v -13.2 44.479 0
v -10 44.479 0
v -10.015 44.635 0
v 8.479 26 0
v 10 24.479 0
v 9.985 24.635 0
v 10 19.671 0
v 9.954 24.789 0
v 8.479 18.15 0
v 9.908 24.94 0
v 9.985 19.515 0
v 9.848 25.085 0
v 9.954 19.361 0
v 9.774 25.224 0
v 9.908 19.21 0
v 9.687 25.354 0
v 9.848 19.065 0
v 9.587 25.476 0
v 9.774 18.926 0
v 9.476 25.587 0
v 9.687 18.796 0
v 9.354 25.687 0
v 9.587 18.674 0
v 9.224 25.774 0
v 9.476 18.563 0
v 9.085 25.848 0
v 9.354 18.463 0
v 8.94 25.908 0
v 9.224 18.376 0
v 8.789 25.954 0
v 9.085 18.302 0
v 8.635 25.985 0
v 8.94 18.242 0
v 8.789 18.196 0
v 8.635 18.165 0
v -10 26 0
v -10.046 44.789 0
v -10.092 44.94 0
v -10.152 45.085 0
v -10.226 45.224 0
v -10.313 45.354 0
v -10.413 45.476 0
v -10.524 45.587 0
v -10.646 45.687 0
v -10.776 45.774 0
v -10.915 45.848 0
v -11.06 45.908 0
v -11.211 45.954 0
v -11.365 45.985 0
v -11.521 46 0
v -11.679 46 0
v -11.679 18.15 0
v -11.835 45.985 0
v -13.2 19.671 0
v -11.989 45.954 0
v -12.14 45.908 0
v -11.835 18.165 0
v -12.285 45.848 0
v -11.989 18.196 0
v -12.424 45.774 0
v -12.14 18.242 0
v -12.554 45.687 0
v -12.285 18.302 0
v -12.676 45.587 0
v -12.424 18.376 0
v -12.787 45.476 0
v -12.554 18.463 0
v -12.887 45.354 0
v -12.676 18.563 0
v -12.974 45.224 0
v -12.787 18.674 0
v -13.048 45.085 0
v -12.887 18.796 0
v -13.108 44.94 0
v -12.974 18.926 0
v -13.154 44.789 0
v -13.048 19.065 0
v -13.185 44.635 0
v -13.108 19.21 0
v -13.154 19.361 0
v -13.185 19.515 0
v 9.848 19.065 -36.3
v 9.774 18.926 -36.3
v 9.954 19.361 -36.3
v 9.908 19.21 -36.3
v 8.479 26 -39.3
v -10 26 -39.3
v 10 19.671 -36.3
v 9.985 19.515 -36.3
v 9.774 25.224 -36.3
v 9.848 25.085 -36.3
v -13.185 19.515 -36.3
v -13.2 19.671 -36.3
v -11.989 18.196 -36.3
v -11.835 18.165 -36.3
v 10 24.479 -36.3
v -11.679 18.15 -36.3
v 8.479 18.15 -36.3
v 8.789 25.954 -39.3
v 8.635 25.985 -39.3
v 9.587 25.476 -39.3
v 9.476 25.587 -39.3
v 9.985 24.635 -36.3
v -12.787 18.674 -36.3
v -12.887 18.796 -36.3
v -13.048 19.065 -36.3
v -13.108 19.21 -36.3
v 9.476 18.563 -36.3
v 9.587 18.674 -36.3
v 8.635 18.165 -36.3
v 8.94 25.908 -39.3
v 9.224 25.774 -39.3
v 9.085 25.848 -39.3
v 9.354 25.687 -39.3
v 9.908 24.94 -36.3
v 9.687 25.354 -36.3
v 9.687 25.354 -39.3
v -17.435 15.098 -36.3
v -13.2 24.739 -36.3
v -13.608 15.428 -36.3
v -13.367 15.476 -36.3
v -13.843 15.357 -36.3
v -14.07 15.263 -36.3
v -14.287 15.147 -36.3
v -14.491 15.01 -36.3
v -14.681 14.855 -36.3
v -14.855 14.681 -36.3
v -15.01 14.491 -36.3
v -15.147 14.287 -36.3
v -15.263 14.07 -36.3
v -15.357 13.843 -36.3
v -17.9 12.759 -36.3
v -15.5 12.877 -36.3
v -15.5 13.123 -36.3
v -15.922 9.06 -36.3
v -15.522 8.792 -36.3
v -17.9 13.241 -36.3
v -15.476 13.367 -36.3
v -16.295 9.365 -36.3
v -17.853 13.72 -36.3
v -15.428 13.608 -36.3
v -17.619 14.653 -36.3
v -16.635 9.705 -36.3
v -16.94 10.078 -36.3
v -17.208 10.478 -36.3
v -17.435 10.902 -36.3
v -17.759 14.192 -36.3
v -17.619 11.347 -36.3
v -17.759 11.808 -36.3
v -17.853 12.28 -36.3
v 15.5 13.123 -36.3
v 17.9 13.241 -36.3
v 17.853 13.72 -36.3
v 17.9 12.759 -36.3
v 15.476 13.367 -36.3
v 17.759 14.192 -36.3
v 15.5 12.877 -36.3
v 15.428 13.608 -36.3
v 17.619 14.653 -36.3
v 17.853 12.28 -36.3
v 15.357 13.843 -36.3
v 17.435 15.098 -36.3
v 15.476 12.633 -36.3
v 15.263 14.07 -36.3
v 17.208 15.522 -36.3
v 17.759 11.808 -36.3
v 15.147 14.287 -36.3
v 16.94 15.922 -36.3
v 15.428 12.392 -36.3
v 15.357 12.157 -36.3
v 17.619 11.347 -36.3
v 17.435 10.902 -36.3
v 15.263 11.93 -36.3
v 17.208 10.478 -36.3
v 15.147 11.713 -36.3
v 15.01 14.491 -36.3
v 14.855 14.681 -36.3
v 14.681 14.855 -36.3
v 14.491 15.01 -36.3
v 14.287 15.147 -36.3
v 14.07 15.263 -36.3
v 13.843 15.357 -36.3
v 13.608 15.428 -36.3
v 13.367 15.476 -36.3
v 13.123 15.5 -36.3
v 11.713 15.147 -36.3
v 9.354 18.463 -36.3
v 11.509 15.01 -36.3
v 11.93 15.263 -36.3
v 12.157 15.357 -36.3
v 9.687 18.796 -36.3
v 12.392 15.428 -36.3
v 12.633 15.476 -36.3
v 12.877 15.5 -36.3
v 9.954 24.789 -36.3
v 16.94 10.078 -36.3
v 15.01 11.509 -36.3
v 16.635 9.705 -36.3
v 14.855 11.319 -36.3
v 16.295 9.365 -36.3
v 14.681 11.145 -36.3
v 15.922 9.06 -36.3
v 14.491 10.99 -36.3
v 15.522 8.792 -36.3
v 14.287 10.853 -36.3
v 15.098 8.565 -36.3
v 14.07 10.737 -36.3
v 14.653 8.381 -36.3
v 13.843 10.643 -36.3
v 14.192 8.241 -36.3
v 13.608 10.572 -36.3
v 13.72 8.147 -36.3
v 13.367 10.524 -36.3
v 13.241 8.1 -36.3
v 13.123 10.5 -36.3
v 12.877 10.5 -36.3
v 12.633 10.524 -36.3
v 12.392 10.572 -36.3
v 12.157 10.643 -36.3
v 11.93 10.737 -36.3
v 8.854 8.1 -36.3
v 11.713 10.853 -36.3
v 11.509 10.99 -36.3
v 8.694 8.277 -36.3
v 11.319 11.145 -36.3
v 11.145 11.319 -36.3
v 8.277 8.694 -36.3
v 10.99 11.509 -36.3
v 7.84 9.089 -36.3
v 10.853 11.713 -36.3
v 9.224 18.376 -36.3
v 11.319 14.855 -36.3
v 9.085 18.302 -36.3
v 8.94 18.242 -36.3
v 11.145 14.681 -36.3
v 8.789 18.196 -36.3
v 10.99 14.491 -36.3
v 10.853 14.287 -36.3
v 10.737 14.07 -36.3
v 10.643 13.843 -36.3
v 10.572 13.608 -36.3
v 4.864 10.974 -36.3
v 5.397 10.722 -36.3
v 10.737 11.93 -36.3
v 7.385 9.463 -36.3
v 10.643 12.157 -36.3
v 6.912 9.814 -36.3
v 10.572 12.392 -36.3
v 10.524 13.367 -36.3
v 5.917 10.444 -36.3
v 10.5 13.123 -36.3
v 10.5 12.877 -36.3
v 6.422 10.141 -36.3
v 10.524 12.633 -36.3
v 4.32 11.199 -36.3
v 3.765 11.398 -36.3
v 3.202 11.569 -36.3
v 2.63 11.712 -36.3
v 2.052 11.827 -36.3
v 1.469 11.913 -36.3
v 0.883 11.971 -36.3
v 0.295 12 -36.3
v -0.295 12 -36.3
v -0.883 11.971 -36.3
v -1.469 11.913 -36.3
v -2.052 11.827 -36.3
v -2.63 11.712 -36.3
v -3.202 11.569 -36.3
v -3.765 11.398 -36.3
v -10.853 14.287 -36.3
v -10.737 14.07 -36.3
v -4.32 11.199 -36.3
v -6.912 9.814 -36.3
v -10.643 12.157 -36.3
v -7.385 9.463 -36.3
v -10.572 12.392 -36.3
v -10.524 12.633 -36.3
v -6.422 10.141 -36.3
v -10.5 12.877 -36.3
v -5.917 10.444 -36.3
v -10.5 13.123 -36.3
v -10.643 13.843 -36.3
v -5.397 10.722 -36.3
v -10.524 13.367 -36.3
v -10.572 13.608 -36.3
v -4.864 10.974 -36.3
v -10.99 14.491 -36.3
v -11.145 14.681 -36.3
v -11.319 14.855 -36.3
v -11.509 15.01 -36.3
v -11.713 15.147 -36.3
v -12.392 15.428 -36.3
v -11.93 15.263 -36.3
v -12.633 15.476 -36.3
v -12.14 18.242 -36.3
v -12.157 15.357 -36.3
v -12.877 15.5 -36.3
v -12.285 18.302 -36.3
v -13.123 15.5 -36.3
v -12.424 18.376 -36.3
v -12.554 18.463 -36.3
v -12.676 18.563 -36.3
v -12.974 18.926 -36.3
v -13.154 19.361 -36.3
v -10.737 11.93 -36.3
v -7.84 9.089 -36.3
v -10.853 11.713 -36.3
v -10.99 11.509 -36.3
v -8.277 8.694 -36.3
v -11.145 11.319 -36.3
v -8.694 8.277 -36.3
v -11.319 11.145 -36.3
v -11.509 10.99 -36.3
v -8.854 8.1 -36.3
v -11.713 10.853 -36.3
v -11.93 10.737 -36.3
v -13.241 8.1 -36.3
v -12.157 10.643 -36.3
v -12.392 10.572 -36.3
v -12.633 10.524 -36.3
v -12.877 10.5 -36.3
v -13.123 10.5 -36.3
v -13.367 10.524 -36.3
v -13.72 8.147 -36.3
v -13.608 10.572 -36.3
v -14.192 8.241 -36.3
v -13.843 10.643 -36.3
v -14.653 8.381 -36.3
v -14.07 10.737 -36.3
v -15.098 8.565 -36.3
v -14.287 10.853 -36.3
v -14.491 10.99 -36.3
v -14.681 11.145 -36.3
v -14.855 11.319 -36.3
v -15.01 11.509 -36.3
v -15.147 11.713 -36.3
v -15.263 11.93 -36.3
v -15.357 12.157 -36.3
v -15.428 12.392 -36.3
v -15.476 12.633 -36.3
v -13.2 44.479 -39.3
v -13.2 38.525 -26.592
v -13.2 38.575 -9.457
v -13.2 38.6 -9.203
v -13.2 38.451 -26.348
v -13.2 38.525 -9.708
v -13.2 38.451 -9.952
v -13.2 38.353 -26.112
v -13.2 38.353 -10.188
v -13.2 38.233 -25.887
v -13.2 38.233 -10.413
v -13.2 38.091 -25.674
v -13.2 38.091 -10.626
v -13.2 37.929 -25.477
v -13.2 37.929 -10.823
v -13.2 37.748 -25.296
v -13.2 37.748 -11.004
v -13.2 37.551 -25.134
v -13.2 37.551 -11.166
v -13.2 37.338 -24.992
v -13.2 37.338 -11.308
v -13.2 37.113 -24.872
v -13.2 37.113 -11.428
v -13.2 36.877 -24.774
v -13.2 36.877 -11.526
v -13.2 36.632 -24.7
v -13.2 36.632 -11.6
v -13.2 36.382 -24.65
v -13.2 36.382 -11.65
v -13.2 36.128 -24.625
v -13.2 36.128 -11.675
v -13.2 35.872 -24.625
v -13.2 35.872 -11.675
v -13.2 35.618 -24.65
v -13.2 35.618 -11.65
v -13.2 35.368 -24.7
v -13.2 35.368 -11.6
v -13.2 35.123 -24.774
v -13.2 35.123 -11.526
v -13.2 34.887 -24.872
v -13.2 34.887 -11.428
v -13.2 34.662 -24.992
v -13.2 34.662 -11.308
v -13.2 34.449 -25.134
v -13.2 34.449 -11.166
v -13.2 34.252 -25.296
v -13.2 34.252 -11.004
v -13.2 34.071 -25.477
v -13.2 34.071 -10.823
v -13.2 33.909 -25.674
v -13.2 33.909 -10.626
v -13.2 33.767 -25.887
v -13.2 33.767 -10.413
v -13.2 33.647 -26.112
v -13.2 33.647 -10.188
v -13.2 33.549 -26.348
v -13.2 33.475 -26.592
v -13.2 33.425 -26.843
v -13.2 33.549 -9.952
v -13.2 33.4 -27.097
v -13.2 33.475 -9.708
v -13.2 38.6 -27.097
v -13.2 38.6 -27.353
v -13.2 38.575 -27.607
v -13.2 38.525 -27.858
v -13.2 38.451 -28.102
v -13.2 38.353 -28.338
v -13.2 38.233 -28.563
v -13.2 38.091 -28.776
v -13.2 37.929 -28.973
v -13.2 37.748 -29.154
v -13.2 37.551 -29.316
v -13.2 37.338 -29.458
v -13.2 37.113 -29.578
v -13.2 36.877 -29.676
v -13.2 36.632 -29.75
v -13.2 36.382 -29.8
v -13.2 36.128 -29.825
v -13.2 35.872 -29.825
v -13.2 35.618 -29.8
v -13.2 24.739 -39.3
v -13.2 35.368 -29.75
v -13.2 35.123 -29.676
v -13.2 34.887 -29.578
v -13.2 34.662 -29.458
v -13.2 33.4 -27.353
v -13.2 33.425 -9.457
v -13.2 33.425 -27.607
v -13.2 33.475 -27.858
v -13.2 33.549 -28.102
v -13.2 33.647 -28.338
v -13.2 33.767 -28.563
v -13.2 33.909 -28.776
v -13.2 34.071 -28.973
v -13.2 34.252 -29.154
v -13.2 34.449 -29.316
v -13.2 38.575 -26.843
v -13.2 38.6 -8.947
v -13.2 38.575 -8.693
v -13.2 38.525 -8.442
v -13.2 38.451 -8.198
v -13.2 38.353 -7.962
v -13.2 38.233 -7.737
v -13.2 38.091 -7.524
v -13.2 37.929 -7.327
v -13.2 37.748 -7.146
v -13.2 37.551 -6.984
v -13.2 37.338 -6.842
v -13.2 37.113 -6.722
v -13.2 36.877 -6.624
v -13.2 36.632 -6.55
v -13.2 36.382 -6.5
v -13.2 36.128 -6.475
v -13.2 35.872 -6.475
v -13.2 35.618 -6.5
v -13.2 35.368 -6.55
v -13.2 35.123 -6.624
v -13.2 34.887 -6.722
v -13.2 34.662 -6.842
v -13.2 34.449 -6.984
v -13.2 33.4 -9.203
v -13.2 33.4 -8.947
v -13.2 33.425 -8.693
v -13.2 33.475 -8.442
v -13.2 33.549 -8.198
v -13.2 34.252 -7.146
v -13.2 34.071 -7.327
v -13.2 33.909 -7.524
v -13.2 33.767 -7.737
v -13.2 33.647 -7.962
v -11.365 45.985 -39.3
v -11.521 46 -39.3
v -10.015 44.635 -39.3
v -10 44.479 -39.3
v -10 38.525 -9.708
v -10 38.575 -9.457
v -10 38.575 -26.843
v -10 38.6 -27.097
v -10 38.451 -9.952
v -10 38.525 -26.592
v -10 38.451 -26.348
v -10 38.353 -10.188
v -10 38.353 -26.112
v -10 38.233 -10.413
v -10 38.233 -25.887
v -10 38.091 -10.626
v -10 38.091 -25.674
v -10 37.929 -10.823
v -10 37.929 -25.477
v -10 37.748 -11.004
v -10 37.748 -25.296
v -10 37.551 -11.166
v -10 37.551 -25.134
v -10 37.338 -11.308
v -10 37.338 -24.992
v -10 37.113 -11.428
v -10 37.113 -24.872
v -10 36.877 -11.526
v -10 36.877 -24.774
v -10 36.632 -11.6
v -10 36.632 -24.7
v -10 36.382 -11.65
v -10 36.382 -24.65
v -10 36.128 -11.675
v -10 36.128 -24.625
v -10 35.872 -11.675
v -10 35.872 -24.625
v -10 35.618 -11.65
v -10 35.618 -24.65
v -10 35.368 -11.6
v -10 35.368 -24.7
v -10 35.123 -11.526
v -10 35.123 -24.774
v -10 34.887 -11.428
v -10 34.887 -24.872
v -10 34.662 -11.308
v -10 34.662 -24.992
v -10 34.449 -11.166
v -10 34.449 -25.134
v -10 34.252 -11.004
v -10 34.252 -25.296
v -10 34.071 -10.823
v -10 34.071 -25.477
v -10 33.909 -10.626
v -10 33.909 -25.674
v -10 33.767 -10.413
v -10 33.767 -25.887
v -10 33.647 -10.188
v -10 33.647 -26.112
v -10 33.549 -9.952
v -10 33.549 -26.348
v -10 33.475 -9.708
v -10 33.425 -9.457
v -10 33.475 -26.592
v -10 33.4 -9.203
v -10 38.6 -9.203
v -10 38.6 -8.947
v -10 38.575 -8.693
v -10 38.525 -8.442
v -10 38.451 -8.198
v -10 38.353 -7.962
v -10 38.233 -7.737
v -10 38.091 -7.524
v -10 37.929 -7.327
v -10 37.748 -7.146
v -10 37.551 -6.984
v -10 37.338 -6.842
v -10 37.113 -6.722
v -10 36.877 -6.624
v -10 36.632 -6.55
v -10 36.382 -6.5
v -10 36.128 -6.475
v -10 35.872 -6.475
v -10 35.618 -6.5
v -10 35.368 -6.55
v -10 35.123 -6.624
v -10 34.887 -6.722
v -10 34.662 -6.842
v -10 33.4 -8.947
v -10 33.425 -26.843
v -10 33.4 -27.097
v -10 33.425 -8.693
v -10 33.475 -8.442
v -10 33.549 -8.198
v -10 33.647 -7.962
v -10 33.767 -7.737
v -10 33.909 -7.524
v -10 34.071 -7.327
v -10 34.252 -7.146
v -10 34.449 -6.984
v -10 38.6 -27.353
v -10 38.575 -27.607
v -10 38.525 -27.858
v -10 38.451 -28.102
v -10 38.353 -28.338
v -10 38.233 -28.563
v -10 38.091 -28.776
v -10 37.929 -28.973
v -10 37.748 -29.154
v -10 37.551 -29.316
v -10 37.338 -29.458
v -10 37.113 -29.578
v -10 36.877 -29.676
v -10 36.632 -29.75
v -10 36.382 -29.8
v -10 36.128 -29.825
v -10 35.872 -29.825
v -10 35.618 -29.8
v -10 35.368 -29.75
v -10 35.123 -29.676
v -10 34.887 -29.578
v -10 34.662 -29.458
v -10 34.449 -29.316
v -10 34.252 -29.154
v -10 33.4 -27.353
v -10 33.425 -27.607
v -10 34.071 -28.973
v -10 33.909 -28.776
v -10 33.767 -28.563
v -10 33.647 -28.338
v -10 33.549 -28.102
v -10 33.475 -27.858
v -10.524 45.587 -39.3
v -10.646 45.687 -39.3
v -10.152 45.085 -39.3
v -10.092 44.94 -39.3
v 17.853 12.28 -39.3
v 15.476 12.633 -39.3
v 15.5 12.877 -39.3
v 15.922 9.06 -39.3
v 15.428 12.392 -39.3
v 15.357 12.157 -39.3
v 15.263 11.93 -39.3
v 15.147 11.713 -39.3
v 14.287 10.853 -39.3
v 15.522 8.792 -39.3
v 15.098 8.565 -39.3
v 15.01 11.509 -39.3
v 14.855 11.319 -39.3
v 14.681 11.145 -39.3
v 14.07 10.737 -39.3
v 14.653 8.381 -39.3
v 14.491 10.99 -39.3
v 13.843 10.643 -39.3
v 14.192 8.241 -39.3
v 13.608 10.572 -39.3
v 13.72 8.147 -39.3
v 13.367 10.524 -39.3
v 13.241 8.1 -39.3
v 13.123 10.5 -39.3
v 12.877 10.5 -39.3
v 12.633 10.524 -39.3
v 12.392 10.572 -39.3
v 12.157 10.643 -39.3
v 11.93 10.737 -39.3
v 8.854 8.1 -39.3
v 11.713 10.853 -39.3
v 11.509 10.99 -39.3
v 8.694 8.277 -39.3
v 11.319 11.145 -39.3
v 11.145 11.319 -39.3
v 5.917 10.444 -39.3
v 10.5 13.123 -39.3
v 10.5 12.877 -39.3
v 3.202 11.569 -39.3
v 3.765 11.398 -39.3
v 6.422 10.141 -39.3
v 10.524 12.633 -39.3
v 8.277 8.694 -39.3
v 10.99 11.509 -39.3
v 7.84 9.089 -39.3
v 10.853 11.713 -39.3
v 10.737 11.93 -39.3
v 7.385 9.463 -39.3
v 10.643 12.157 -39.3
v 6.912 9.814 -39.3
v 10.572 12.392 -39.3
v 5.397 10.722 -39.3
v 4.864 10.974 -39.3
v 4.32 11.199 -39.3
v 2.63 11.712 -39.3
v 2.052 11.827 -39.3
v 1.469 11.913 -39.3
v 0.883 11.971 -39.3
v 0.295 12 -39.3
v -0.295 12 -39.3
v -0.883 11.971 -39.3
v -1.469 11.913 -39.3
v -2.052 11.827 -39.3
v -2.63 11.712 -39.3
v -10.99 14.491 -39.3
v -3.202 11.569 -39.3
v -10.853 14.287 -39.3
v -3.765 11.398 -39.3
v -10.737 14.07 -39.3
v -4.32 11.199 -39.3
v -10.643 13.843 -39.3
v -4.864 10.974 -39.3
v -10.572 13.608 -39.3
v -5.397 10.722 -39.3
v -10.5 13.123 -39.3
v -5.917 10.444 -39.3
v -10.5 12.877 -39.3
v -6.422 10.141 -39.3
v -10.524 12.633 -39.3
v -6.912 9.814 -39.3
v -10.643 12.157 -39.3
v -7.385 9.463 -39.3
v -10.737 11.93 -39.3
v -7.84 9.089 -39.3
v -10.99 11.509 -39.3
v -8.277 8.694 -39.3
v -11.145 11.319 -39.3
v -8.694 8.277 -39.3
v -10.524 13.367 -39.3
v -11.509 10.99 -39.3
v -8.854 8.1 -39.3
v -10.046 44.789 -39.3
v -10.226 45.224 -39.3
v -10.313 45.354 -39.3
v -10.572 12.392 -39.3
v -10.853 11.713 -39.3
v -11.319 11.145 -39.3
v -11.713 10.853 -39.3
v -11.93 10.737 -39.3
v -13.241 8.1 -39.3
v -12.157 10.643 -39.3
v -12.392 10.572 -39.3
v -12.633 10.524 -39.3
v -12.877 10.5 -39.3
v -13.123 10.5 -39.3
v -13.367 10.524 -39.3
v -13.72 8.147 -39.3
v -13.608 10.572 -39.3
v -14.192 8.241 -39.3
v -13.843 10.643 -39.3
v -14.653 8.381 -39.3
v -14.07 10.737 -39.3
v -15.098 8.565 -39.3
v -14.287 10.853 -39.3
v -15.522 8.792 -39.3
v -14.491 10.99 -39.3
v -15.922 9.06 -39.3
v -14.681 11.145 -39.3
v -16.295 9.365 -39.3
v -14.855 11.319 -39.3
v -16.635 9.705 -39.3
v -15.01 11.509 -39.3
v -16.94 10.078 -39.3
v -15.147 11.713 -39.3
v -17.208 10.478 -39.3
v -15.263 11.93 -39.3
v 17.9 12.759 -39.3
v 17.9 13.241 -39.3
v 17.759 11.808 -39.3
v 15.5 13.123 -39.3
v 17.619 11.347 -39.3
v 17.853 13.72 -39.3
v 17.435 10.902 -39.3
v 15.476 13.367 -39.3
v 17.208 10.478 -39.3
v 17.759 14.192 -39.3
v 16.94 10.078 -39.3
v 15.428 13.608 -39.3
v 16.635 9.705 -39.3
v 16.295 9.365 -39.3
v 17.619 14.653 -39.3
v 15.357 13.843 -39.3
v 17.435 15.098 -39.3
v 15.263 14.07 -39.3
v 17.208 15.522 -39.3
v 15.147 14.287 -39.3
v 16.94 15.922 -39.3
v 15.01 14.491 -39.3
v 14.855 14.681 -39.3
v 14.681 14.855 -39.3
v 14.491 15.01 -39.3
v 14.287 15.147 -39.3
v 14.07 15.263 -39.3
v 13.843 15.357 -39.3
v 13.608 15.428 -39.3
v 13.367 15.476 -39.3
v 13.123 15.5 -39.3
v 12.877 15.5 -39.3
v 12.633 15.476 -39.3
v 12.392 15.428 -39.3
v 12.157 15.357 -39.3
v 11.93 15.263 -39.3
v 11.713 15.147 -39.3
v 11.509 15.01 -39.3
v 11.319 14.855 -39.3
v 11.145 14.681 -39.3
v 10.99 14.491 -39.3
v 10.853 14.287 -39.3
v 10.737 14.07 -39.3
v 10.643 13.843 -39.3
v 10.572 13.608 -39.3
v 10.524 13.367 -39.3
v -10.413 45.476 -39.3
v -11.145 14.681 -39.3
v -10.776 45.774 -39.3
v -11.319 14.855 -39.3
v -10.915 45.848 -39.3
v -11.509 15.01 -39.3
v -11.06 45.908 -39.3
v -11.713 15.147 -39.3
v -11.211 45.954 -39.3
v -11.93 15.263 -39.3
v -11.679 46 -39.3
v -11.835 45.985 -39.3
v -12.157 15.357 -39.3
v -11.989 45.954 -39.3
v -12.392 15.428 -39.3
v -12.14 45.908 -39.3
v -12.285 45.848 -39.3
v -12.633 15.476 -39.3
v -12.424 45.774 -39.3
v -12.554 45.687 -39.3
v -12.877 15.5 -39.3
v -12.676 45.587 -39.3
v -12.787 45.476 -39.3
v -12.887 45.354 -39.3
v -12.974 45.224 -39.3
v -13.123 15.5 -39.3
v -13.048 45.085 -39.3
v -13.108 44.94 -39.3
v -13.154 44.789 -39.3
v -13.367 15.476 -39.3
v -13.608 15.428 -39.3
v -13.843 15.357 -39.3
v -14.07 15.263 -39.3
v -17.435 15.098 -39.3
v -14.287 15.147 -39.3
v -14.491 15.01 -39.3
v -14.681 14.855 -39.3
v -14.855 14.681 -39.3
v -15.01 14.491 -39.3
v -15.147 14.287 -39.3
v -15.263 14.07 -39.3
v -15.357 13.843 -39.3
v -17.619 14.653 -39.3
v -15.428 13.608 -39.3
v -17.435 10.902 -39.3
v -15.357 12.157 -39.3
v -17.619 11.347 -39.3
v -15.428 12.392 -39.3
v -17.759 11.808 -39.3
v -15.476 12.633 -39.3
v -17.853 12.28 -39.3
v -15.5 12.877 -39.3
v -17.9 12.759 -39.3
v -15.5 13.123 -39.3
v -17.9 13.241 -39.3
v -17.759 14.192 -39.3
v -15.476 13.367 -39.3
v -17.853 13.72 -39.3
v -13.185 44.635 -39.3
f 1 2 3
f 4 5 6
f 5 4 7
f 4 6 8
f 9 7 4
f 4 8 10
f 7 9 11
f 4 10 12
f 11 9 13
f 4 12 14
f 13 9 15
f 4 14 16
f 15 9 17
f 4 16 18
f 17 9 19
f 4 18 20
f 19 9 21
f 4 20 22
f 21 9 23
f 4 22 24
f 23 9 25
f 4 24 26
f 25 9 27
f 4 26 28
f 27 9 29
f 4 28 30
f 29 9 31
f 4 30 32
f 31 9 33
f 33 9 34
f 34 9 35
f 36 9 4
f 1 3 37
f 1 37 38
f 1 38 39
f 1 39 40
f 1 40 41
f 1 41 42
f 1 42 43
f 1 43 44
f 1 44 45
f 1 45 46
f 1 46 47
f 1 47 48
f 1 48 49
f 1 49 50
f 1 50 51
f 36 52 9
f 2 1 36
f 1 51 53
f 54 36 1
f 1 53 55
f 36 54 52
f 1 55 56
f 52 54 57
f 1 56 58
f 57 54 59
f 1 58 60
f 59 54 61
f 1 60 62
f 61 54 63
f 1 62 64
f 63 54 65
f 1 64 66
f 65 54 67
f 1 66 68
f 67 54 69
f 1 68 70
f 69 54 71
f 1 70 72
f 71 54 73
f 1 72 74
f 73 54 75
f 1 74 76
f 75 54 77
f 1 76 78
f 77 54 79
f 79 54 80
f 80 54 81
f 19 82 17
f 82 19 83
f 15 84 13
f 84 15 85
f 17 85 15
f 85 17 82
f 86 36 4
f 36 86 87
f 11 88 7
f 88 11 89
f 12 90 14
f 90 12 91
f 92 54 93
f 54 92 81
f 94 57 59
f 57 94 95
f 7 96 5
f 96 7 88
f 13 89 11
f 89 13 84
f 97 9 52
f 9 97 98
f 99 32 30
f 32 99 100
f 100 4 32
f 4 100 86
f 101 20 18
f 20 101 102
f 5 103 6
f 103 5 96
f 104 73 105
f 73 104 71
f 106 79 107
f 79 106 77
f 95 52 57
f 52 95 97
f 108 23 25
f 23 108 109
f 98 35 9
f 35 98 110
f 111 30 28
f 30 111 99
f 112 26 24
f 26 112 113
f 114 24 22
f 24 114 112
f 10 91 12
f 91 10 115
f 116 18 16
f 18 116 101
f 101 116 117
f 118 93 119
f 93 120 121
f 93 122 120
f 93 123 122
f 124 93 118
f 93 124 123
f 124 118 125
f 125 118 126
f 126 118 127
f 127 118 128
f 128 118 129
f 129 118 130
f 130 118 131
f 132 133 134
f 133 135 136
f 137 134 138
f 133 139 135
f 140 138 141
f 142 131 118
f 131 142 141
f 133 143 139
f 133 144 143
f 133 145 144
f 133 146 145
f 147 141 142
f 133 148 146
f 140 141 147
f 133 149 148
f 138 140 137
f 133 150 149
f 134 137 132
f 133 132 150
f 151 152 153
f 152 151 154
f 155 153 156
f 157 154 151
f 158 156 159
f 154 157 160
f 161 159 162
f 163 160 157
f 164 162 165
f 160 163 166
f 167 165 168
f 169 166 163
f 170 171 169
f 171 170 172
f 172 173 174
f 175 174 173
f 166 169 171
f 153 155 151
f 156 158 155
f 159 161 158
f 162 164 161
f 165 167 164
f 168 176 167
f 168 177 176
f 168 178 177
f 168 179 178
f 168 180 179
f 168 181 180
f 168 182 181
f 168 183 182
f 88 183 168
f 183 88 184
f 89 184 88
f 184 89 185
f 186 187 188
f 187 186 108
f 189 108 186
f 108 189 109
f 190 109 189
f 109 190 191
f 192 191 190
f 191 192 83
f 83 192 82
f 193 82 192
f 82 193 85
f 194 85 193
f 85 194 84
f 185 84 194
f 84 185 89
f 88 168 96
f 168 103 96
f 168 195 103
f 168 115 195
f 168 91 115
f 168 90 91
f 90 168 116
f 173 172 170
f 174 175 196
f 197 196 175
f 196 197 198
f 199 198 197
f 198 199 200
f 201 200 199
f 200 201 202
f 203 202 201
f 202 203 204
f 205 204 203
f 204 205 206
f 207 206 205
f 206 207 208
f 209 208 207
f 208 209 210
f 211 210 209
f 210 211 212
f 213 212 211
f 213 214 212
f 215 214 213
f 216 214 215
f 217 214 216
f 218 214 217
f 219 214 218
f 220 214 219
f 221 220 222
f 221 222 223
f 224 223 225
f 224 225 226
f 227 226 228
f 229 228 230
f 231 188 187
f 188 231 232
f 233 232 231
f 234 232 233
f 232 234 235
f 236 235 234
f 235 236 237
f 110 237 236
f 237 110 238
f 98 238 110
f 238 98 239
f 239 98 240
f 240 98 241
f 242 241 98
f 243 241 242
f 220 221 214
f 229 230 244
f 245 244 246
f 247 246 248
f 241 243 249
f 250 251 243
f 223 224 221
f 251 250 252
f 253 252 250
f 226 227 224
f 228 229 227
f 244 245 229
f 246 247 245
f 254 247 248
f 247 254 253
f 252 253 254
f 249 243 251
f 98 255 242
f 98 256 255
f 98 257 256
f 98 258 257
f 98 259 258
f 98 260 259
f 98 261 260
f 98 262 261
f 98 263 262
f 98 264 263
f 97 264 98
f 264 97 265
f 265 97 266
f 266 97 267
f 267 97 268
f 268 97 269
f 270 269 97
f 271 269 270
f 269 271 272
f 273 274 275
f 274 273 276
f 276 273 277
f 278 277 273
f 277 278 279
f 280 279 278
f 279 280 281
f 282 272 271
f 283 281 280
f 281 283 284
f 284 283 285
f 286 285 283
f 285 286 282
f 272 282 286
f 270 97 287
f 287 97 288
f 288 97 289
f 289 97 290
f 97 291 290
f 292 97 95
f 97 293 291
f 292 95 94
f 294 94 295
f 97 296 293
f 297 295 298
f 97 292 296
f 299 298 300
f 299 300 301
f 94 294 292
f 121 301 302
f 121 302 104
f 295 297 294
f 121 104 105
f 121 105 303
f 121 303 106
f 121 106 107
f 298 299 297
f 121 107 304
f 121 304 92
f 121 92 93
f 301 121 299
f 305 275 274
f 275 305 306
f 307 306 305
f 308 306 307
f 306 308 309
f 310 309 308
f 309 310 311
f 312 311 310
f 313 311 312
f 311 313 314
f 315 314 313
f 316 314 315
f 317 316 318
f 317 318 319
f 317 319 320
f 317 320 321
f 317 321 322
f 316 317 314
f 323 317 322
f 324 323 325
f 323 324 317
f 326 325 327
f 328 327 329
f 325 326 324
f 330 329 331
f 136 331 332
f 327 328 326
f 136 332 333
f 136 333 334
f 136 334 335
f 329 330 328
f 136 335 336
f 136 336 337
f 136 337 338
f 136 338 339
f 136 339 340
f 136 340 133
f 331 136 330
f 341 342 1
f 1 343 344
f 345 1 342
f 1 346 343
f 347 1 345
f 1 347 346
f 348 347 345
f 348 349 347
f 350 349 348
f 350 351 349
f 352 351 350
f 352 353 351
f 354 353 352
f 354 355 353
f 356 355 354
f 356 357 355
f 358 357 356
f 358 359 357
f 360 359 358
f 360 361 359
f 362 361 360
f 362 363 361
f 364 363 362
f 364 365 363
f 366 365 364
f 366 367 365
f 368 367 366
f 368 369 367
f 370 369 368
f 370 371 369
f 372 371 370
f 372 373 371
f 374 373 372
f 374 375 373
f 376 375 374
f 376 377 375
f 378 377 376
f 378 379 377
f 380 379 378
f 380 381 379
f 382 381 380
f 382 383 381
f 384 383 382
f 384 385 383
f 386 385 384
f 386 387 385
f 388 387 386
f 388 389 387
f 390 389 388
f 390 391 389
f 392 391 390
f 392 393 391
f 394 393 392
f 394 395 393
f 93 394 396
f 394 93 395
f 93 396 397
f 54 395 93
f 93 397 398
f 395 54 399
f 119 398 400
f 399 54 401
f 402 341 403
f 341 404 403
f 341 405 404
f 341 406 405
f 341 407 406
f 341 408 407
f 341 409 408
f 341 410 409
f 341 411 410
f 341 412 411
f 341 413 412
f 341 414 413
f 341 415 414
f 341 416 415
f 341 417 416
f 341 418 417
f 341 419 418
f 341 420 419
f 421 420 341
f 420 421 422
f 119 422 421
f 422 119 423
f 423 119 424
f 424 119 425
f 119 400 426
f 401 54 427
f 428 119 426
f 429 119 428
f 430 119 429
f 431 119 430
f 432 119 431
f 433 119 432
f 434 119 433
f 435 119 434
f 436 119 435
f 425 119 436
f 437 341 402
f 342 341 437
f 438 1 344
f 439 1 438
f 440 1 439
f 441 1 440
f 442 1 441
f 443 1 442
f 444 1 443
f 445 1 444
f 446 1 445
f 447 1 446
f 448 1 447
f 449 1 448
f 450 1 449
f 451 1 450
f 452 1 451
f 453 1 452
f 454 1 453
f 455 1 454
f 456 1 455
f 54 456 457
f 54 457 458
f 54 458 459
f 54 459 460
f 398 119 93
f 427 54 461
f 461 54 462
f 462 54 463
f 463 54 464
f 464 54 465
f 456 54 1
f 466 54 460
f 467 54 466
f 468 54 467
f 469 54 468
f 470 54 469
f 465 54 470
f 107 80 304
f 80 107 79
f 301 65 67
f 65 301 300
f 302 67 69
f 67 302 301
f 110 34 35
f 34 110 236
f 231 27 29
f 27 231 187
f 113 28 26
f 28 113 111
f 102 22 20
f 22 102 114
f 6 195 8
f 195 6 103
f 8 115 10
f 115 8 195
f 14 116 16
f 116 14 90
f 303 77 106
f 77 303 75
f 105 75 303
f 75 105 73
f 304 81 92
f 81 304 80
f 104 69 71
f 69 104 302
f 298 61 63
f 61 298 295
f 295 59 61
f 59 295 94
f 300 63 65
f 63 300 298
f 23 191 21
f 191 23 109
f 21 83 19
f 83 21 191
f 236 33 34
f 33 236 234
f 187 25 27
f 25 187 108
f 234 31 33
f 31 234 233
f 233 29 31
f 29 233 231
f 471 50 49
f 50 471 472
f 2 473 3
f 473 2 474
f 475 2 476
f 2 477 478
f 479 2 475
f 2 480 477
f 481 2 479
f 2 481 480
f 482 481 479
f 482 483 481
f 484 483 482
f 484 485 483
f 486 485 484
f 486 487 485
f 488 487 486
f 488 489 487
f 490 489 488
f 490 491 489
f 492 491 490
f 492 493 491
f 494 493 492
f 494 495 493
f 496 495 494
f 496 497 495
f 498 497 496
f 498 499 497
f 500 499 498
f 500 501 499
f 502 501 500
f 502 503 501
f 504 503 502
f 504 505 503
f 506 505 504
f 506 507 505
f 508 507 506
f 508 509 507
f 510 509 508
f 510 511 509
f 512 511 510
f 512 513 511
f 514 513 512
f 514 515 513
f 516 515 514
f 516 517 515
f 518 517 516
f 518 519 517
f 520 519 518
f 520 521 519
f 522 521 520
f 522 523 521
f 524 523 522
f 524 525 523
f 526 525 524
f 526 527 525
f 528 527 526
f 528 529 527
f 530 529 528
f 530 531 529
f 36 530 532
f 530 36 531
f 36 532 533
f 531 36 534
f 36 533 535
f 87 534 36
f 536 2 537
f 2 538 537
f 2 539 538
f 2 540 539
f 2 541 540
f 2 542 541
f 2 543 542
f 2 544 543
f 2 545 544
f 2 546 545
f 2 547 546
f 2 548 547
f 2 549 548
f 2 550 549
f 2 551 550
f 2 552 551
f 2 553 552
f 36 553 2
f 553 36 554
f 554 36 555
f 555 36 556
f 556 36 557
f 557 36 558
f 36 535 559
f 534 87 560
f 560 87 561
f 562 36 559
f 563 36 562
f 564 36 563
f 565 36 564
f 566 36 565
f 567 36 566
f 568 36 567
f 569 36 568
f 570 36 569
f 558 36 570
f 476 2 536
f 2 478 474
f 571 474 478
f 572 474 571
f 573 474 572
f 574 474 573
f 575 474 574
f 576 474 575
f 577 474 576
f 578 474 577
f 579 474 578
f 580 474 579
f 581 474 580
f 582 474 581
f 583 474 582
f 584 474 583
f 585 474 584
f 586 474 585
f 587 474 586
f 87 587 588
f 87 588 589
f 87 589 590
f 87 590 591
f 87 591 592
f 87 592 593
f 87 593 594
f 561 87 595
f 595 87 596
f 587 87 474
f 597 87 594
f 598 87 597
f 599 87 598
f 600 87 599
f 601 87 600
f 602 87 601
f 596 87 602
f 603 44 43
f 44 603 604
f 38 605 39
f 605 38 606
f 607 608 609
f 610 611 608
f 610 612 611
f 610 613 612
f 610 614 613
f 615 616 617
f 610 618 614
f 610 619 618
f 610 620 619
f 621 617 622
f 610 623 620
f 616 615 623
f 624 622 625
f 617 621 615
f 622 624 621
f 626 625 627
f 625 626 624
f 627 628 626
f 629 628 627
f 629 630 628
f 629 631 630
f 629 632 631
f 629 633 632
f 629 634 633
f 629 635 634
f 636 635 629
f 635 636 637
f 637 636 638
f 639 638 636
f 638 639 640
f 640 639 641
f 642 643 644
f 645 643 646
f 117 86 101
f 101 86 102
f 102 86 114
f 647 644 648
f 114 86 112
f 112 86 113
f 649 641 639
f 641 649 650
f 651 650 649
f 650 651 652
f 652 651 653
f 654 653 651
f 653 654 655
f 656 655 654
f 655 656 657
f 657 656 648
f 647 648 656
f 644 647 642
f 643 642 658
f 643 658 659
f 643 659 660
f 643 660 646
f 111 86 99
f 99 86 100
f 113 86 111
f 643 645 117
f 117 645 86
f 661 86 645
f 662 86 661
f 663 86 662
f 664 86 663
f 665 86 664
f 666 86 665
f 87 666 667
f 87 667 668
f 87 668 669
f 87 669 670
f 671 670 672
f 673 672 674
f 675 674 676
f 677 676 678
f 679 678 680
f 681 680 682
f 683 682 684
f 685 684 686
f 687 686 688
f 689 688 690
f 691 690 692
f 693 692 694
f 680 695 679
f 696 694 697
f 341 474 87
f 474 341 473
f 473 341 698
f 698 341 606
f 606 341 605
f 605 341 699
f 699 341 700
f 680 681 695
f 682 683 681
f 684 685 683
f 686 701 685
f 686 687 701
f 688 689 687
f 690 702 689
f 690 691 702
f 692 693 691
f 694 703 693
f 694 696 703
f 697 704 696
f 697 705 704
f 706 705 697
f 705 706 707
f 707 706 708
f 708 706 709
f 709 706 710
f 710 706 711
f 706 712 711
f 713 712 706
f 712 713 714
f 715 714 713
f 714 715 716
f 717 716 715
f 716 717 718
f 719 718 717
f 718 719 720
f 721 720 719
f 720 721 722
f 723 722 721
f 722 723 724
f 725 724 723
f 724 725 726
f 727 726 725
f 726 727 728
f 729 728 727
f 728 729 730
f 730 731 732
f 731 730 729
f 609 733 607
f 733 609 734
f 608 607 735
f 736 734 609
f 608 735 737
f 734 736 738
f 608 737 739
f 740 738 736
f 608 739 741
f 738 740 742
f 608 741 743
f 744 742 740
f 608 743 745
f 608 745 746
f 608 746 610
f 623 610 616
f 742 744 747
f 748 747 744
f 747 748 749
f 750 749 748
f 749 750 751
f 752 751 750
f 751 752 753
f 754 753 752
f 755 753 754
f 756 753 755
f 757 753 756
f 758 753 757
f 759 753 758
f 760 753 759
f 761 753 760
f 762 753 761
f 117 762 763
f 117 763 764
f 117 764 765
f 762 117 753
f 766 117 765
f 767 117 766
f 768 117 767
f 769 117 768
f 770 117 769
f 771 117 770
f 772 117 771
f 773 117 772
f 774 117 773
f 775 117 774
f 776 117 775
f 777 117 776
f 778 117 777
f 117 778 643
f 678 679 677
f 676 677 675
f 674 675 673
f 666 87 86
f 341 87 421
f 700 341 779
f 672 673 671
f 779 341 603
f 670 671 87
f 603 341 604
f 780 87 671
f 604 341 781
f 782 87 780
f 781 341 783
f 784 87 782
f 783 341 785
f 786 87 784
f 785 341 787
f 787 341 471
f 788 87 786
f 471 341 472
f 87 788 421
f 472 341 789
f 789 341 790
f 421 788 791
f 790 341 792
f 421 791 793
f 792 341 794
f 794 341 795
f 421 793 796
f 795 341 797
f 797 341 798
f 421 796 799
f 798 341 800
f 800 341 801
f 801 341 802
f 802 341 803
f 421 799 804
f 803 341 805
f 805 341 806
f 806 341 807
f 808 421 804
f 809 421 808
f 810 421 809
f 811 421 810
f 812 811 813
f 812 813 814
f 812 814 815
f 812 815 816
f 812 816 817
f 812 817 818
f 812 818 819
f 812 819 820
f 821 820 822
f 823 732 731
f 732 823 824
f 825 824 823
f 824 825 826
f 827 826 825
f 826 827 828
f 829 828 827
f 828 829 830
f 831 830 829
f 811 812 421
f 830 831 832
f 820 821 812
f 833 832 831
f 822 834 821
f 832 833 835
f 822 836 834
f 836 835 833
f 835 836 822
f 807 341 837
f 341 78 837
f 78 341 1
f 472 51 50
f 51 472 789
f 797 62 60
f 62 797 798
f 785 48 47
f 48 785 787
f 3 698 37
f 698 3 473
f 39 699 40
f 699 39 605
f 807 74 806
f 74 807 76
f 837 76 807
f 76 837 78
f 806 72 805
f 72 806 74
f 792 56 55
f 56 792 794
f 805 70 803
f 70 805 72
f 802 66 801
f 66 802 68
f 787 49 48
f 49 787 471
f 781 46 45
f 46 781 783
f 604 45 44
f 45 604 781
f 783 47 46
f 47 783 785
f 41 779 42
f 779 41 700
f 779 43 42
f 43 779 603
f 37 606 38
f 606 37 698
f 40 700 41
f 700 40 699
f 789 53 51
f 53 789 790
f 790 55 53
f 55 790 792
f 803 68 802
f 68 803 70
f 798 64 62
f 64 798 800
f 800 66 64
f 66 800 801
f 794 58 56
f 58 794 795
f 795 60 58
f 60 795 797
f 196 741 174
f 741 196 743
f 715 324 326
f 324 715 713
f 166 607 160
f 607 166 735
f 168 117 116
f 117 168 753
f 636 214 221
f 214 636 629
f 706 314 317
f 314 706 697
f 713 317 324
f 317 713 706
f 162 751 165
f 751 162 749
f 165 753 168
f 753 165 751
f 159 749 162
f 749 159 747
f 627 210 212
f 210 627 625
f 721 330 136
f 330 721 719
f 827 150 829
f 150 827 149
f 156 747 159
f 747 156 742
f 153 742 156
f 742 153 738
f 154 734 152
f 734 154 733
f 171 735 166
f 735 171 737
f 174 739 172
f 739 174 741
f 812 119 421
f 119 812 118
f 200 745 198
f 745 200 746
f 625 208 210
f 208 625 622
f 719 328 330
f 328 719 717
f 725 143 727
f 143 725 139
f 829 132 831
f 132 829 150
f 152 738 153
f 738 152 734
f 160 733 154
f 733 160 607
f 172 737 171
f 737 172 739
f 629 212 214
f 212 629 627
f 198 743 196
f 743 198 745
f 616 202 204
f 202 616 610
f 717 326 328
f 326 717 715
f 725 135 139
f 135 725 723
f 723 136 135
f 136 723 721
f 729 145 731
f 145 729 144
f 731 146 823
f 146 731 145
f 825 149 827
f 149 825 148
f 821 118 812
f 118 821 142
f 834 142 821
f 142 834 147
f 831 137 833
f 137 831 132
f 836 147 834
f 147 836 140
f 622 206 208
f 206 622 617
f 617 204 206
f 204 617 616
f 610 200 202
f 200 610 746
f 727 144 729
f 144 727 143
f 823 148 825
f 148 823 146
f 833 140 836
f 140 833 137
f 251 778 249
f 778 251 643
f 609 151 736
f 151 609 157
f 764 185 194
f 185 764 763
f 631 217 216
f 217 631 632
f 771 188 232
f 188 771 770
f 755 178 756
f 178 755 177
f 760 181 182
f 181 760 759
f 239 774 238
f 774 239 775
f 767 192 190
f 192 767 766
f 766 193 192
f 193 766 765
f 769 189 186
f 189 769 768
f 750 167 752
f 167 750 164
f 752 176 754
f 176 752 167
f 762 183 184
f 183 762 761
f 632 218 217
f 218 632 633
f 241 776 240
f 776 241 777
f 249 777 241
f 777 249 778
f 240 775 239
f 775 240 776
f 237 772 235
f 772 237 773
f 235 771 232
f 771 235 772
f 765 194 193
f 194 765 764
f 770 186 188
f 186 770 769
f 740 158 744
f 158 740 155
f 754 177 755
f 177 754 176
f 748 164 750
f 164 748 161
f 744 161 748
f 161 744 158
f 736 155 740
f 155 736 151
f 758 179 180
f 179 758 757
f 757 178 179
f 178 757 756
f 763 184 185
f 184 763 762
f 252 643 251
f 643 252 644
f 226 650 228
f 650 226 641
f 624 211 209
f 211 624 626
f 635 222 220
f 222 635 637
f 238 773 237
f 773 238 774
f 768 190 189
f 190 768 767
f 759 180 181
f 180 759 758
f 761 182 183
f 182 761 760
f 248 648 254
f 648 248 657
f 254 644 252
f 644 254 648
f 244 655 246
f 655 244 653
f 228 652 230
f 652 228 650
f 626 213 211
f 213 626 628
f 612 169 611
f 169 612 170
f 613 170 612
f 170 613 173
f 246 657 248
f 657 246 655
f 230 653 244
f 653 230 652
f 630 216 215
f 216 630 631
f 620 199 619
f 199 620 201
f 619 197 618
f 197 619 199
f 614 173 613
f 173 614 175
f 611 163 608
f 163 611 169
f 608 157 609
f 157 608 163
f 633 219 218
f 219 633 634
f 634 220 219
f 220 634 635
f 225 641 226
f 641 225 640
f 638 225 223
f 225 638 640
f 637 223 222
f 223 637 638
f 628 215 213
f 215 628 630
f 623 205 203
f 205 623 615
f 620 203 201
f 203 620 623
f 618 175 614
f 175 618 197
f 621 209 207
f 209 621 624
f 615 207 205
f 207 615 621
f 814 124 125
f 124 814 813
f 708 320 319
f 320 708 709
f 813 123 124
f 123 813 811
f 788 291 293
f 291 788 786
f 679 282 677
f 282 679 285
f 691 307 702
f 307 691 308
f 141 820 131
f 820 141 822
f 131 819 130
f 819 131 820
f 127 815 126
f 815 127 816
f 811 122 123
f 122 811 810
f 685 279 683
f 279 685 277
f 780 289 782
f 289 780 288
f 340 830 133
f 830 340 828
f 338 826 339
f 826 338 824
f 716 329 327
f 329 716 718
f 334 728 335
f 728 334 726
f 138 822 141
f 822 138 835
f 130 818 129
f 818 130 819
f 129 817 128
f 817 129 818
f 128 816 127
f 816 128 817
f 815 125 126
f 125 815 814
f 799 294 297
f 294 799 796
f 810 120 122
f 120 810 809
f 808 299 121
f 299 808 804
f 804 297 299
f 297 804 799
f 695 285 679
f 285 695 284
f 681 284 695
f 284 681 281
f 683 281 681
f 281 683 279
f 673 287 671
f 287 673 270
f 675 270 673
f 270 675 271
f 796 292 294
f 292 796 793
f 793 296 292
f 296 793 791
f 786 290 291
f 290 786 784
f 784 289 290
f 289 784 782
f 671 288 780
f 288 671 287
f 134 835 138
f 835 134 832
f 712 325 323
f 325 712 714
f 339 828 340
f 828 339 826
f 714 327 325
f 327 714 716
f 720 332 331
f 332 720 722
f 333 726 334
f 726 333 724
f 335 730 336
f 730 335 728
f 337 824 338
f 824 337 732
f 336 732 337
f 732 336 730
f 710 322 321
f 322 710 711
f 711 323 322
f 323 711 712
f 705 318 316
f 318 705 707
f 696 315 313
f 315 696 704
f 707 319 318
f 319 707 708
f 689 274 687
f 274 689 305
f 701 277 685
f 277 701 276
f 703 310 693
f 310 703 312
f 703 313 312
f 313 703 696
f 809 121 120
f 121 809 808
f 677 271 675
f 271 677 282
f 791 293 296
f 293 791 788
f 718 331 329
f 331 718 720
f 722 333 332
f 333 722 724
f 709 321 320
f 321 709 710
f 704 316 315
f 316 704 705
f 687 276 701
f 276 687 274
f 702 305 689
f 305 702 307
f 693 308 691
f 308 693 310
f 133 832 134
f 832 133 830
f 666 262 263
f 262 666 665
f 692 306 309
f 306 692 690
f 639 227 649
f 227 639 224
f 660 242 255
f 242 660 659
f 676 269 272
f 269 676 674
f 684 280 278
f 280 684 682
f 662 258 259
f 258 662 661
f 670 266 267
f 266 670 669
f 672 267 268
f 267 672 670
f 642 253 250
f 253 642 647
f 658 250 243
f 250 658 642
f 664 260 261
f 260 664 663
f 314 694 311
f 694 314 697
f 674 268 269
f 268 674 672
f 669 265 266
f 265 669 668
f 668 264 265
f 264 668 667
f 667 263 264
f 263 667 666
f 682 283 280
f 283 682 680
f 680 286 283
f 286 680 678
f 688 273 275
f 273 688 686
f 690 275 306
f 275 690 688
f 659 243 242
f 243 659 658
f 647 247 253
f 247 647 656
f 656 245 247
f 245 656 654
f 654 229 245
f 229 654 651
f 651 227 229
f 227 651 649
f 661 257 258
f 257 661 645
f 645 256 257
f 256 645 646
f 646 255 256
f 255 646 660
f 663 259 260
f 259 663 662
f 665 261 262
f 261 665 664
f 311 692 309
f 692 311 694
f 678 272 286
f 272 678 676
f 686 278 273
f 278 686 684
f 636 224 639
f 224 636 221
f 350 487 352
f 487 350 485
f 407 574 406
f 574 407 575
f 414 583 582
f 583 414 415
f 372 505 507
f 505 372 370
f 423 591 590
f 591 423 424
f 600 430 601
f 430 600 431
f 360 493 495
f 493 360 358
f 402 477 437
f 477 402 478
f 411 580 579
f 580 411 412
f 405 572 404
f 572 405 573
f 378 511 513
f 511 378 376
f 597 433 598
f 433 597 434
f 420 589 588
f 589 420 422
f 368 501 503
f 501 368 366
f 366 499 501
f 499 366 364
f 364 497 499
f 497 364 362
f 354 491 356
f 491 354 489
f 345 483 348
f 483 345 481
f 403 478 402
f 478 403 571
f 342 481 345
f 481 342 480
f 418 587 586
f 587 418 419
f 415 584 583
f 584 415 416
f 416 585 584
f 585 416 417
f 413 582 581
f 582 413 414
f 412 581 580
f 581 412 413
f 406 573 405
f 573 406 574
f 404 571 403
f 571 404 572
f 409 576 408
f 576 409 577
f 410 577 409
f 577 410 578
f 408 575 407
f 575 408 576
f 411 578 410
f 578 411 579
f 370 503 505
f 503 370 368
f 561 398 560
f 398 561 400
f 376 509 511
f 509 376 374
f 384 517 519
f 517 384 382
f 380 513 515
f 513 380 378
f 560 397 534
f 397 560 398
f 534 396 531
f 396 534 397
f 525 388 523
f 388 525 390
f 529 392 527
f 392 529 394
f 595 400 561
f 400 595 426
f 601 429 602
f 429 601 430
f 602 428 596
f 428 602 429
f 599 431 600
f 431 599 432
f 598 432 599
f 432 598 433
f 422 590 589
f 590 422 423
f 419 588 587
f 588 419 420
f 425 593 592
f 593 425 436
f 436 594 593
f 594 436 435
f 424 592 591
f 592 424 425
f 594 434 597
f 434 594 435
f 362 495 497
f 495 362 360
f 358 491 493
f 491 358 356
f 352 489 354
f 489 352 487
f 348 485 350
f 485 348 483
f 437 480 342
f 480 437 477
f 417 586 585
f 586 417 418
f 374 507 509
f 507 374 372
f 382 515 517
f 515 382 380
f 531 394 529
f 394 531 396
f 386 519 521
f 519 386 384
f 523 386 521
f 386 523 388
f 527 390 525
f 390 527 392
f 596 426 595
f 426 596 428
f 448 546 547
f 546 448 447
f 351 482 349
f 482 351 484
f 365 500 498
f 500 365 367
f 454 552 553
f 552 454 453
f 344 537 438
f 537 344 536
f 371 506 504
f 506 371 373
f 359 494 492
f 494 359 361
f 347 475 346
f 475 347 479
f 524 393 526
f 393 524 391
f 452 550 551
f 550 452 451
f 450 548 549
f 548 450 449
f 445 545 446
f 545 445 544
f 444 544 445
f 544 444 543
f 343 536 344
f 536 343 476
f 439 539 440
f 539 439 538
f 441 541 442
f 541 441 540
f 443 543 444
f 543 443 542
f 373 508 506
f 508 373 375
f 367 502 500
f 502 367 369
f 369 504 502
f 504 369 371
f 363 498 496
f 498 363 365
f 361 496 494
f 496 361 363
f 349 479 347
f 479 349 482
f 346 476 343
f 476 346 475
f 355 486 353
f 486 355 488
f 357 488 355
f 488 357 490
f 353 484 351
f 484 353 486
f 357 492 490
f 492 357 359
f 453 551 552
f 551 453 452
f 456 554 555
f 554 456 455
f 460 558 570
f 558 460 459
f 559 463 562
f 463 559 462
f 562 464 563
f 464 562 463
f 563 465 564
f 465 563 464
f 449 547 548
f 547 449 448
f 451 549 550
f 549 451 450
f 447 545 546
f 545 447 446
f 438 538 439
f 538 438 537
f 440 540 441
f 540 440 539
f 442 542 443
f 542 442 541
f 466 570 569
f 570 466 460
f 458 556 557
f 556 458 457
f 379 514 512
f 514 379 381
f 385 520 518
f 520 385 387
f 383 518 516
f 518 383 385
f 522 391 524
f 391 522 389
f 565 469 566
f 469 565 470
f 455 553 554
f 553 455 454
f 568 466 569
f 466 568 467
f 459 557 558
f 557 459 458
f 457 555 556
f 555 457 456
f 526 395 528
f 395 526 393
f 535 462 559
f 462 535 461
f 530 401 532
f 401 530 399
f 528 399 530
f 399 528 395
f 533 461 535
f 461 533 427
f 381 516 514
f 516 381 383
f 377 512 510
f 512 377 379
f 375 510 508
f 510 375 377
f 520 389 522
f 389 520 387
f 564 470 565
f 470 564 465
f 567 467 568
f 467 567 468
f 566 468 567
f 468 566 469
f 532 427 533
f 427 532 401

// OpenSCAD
// file: ../lib/util.scad
resolution = 64;

pi = 3.141592;

left = -1;
right = 1;
top = 1;
bottom = -1;
rear = 1;
front = -1;

function accurate_diam(diam,sides) = 1 / cos(180/sides) / 2 * diam;

module hole(diam,len,sides=8) {
  rotate([0,0,180/sides]) {
    cylinder(r=accurate_diam(diam,sides),h=len,center=true,$fn=sides);
  }
}

module accurate_circle(diam,sides=8) {
  rotate([0,0,180/sides]) {
    circle(r=accurate_diam(diam,sides),$fn=sides);
  }
}

module debug_axes() {
  color("red") translate([50,0,0]) cube([100,.2,.2],center=true);
  color("green") translate([0,50,0]) cube([.2,100,.2],center=true);
  color("blue") translate([0,0,50]) cube([.2,.2,100],center=true);
}

module ring(id,thickness,height,fn=16) {
  od = id + thickness;
  linear_extrude(height=height,center=true) {
    difference() {
      accurate_circle(od,fn);
      accurate_circle(id,fn);
    }
  }
}

module rounded_square(width,depth,diam,fn=resolution) {
  pos_x = width/2-diam/2;
  pos_y = depth/2-diam/2;

  hull() {
    for(x=[left,right]) {
      for(y=[front,rear]) {
        translate([x*pos_x,y*pos_y,0]) {
          accurate_circle(diam,fn);
        }
      }
    }
  }
}

module rounded_cube(width,depth,height,diam,fn=resolution) {
  linear_extrude(height=height,center=true,convexity=3) {
    rounded_square(width,depth,diam,fn);
  }
}

module round_corner_filler(diam,length) {
  linear_extrude(height=length,center=true,convexity=3) {
    round_corner_filler_profile(diam);
  }
}

module round_corner_filler_profile(diam,res=resolution) {
  difference() {
    translate([diam/4,diam/4,0]) {
      square([diam/2,diam/2],center=true);
    }
    translate([diam/2,diam/2,0]) {
      accurate_circle(diam,res);
    }
  }
}

module space_along_length(length,min_hole_spacing=4*inch,from_end=1*inch) {
  avail_length = length - (from_end*2);
  num_spaces   = floor(avail_length / min_hole_spacing);
  extra_space  = (avail_length - (num_spaces*min_hole_spacing)) / num_spaces;
  spacing      = min_hole_spacing + extra_space;

  // echo(length, num_spaces, spacing);

  translate([0,-length/2+from_end,0]) {
    for(y=[0:num_spaces]) {
      translate([0,y*spacing,0]) {
        children();
      }
    }
  }
}

module letter_spike(thin_width,thick_width,thickness) {
  hull() {
    cylinder(r=thin_width,h=thickness*2,center=true,$fn=16);
    cylinder(r=thick_width,h=0.01,center=true,$fn=16);
  }
}

module letter_L(width=10,height=20,thickness=0.5,thick_width=2,thin_width=0.3) {
  lines = [
    [
      [-width/2,height/2,0],
      [-width/2,-height/2,0],
    ],
    [
      [-width/2,-height/2,0],
      [width/2,-height/2,0],
    ],
  ];

  for(pair=lines) {
    hull() {
      for(vect=pair) {
        translate(vect) {
          letter_spike(thin_width,thick_width,thickness);
        }
      }
    }
  }
}

module letter_R(width=10,height=20,thickness=0.5,thick_width=2,thin_width=0.3) {
  lines = [
    [
      [-width/2,height/2,0],
      [-width/2,-height/2,0],
    ],
    [
      [-width/2,height/2,0],
      [width/2,height/3,0],
    ],
    [
      [width/2,height/3,0],
      [-width/4,0,0],
    ],
    [
      [-width/2,0,0],
      [-width/4,0,0],
    ],
    [
      [-width/4,0,0],
      [width/2,-height/2,0],
    ],
  ];

  for(pair=lines) {
    hull() {
      for(vect=pair) {
        translate(vect) {
          letter_spike(thin_width,thick_width,thickness);
        }
      }
    }
  }
}

module zip_tie_cavity(inner_diam_input,zip_tie_thickness,zip_tie_width,fn=resolution) {
  inner_diam = inner_diam_input -0.05;
  overall_width = inner_diam+zip_tie_thickness*2;

  module profile() {
    for(x=[left,right]) {
      translate([x*(inner_diam/2+zip_tie_thickness/2),overall_width,0]) {
        square([zip_tie_thickness,overall_width*2],center=true);
      }
    }

    intersection() {
      translate([0,-overall_width,0]) {
        square([overall_width*2,overall_width*2],center=true);
      }
      difference() {
        accurate_circle(inner_diam+zip_tie_thickness*2,fn);
        accurate_circle(inner_diam,fn);
      }
    }
  }

  linear_extrude(height=zip_tie_width,convexity=3,center=true) {
    profile();
  }
}

module printed_extrusion_carriage_profile(body_width,body_height) {
  spring_thickness = extrude_width*4;
  spring_gap_width = 1;
  preload = -0.2; // negative makes more slack both for print and UHMWPE tape
  wall_thickness = extrude_width*4;

  cavity_width = body_width - wall_thickness*4;
  cavity_height = body_height - wall_thickness*4;

  module spring_profile() {
    contact_width = 8;

    translate([0,-preload+spring_thickness/2]) {
      translate([left*(y_rail_extrusion_width/2-contact_width/2),0,0]) {
        rounded_square(contact_width,spring_thickness,spring_thickness);
      }
      hull() {
        translate([left*(y_rail_extrusion_width/2-contact_width+spring_thickness/2),0,0]) {
          accurate_circle(spring_thickness,resolution);
        }
        translate([right*(y_rail_extrusion_width/2-spring_thickness),spring_gap_width/2,0]) {
          accurate_circle(spring_thickness,resolution);
        }
      }
      translate([right*(y_rail_extrusion_width/2-spring_thickness),2-spring_thickness/2+spring_gap_width/2,0]) {
        rounded_square(spring_thickness,4,spring_thickness);
      }
    }
  }

  for(z=[top,bottom]) {
    mirror([0,1-z,0]) {
      translate([0,y_rail_extrusion_height/2]) {
        spring_profile();
      }

      for(x=[left,right]) {
        mirror([1-x,0,0]) {
          translate([y_rail_extrusion_width/2,y_rail_extrusion_height/4,0]) {
            rotate([0,0,-90]) {
              spring_profile();
            }
          }
        }
      }
    }
  }

  difference() {
    gap_width = cavity_height - y_rail_extrusion_height;
    rounded_square(body_width,body_height,wall_thickness*8);
    rounded_square(cavity_width,cavity_height,gap_width);
  }
}

/*
translate([-10,0,0]) {
  letter_L();
}

translate([10,0,0]) {
  letter_R();
}
*/
// file: ../config.scad
include <./lib/util.scad>;
include <./lib/vitamins.scad>;

tolerance = 0.2;
extrude_width = 0.4;
wall_thickness = extrude_width*3;

extrusion_mount_screw_diam = m5_diam;
extrusion_mount_screw_head_diam = m5_nut_diam;

leadscrew_diam = 5;
leadscrew_hole_diam = 6.5;
leadscrew_nut_shaft_diam = 8.5;
leadscrew_nut_shaft_length = 6.5;
leadscrew_nut_hole_dist = 6.611;
leadscrew_nut_flange_diam = 20;
leadscrew_nut_flange_thickness = 3.25;
leadscrew_nut_mounting_hole_dist = 6.35;
leadscrew_nut_mounting_hole_diam = 2.8; // from walter's -- threading m3 into plastic?

//leadscrew_pos_y = -leadscrew_nut_flange_diam/2-1;
//leadscrew_pos_y = -11; // we could move it closer with a printed bracket, but it would interfere with the X idler without redefining the X idler Y pos
leadscrew_pos_y = -13; // what walter is using

m3_socket_head_diam = 5.6;
m3_socket_head_height = 3;

rounded_diam = 4;

z_nut_base_height = mgn12c_length/2 - mgn12c_hole_spacing_length/2 + m3_socket_head_diam/2 + extrude_width*2;

gt2_toothed_idler_id_hole = gt2_toothed_idler_id-0.15; // thread the idler pulley shaft into plastic

leadscrew_nut_mounting_hole_depth = z_nut_base_height - leadscrew_nut_flange_thickness - extrude_width*2;

leadscrew_nut_shoulder_below_carriage_holes = 4.5;

idler_bevel_height = 1;
idler_shoulder_above_rail = 9.2/2+4.8;

depth = abs(leadscrew_pos_y)+7; // copying from walter
z_nut_mount_height = idler_shoulder_above_rail - idler_bevel_height + mgn12c_hole_spacing_length/2 + mgn12c_length/2;

echo("z_nut_mount_height: ", z_nut_mount_height);
z_nut_body_pos_z = mgn12c_hole_spacing_length/2+idler_shoulder_above_rail-idler_bevel_height-z_nut_mount_height/2;

// x_idler_on_z_pos_x = -11; // walter
x_idler_on_z_pos_x = left*(leadscrew_diam/2+gt2_toothed_idler_flange_od/2+1);
x_idler_on_z_pos_y = leadscrew_pos_y-3;
x_idler_on_z_pos_z = z_nut_body_pos_z + z_nut_mount_height/2 + idler_bevel_height;

meat_on_far_side_of_idler = gt2_toothed_idler_id_hole/2 + wall_thickness*3;
idler_shaft_body_width = meat_on_far_side_of_idler + abs(x_idler_on_z_pos_x) - leadscrew_hole_diam/2 - 1.75; // fatter to be same as walter's
z_nut_mount_width = meat_on_far_side_of_idler + abs(x_idler_on_z_pos_x) + mgn12c_hole_spacing_width/2 + m3_socket_head_diam/2 + extrude_width*2;
z_nut_body_pos_x = x_idler_on_z_pos_x-meat_on_far_side_of_idler+z_nut_mount_width/2;

mgn9_rail_width_allowance = mgn9_rail_width+tolerance;
mgn9_rail_height_allowance = mgn9_rail_height+tolerance;
// file: ../z-motor-mount.scad
include <./config.scad>;
include <./lib/util.scad>;

gap_beneath_z_motor = 1;
motor_opening_side = nema14_side + 1;
motor_opening_height = nema14_len + gap_beneath_z_motor;
plate_thickness = 3;
motor_screw_hole_diam = nema14_screw_diam+2; // extra slop to adjust Z motor
motor_screw_mount_width = motor_screw_hole_diam+2*(extrude_width*6);
mount_width = nema14_hole_spacing+motor_screw_mount_width;
dist_to_extrusion = abs(leadscrew_pos_y) + mgn12c_surface_above_surface;
extrusion_width = 20;

module motor_negative() {
  translate([0,0,motor_opening_height/2]) {
    // cube([motor_opening_side,motor_opening_side,motor_opening_height],center=true);
  }

  translate([0,0,motor_opening_height]) {
    for(x=[left,right]) {
      for(y=[front,rear]) {
        translate([x*nema14_hole_spacing/2,y*nema14_hole_spacing/2,0]) {
          hole(motor_screw_hole_diam,40,resolution);
        }
      }
    } 

    hole(nema14_shoulder_diam+2,40,resolution*2);
  }
}

module z_motor_mount_rear() {
  extrusion_side_thickness = dist_to_extrusion - motor_opening_side/2;
  extrusion_mount_thickness = extrude_width*8;

  module body() {
    // between motor and extrusion
    translate([extrusion_mount_thickness/2,motor_opening_side/2+extrusion_side_thickness/2,motor_opening_height/2]) {
      rounded_cube(extrusion_width+extrusion_mount_thickness,extrusion_side_thickness,motor_opening_height,extrusion_mount_thickness);
    }

    // mount to screw to extrusion
    extrusion_mount_height = motor_opening_height + plate_thickness;
    overall_depth = extrusion_side_thickness+extrusion_width;
    translate([extrusion_width/2+extrusion_mount_thickness/2,motor_opening_side/2+overall_depth/2,extrusion_mount_height/2]) {
      rounded_cube(extrusion_mount_thickness,overall_depth,extrusion_mount_height,extrusion_mount_thickness);
    }

    // motor mount plate
    translate([0,0,motor_opening_height+plate_thickness/2]) {
      hull() {
        translate([extrusion_mount_thickness/2,motor_opening_side/2+extrusion_side_thickness/2,0]) {
          rounded_cube(extrusion_width+extrusion_mount_thickness,extrusion_side_thickness,plate_thickness,extrusion_mount_thickness);
        }
        for(x=[left,right]) {
          translate([x*nema14_hole_spacing/2,nema14_hole_spacing/2,0]) {
            hole(motor_screw_mount_width,plate_thickness,resolution);
          }
        }
      }
    }
  }

  module holes() {
    motor_negative();

    translate([0,dist_to_extrusion+extrusion_width/2,0]) {
      for(z=[top,bottom]) {
        translate([0,0,motor_opening_height/2+z*motor_opening_height/4]) {
          rotate([0,90,0]) {
            hole(5+tolerance,60,resolution);
          }
        }
      }
    }
  }

  color("salmon") {
    difference() {
      body();
      holes();
    }
  }

  translate([0,0,gap_beneath_z_motor+nema14_len]) {
    % color("dimgrey") motor_nema14();
  }
}

module z_motor_mount_front() {
  wall_thickness = extrude_width*2;
  rounded_diam = 6;
  extrusion_mount_screw_hole_diam = extrusion_mount_screw_diam + tolerance*2;
  extrusion_mount_head_hole_diam = extrusion_mount_screw_head_diam + tolerance*3;
  extrusion_mount_depth = extrusion_mount_head_hole_diam+wall_thickness*2;
  extrusion_mount_width = extrusion_mount_head_hole_diam+rounded_diam+wall_thickness*2;

  extrusion_anchor_shoulder_pos_z = 15;

  module body() {
    // screw meat
    translate([0,0,0]) {
      translate([0,front*(motor_opening_side/2+extrusion_mount_depth/2),motor_opening_height/2]) {
        rounded_cube(extrusion_mount_width,extrusion_mount_depth,motor_opening_height,rounded_diam,resolution);
      }
    }

    // motor mount plate
    translate([0,0,motor_opening_height+plate_thickness/2]) {
      hull() {
        translate([0,front*(motor_opening_side/2+extrusion_mount_depth/2),0]) {
          rounded_cube(extrusion_mount_width,extrusion_mount_depth,plate_thickness,rounded_diam,resolution);
        }
        for(x=[left,right]) {
          translate([x*nema14_hole_spacing/2,front*nema14_hole_spacing/2,0]) {
            hole(motor_screw_mount_width,plate_thickness,resolution);
          }
        }
      }
    }
  }

  module holes() {
    motor_negative();

    translate([0,front*(motor_opening_side/2+extrusion_mount_depth-extrusion_mount_head_hole_diam/2),extrusion_anchor_shoulder_pos_z + 40]) {
      hole(extrusion_mount_head_hole_diam,80,resolution);
      hole(extrusion_mount_screw_hole_diam,2*80,resolution);

      translate([0,front*(extrusion_mount_head_hole_diam/2),0]) {
        cube([extrusion_mount_head_hole_diam,extrusion_mount_head_hole_diam,80],center=true);
      }
    }
  }

  module bridges() {
    translate([0,front*(motor_opening_side/2+extrusion_mount_depth-extrusion_mount_head_hole_diam/2),extrusion_anchor_shoulder_pos_z-0.1]) {
      hole(extrusion_mount_screw_hole_diam+1,0.2,8);
    }
  }

  color("salmon") {
    difference() {
      body();
      holes();
    }

    bridges();
  }

  translate([0,0,gap_beneath_z_motor+nema14_len]) {
    % color("dimgrey") motor_nema14();
  }
}

module z_motor_mount_rear_to_print() {
  rotate([0,180,0]) {
    z_motor_mount_rear();
  }
}

module z_motor_mount_front_to_print() {
  rotate([180,0,0]) {
    z_motor_mount_front();
  }
}

z_motor_mount_rear();

z_motor_mount_front();
// main file
use <../z-motor-mount.scad>;

z_motor_mount_rear_to_print();
